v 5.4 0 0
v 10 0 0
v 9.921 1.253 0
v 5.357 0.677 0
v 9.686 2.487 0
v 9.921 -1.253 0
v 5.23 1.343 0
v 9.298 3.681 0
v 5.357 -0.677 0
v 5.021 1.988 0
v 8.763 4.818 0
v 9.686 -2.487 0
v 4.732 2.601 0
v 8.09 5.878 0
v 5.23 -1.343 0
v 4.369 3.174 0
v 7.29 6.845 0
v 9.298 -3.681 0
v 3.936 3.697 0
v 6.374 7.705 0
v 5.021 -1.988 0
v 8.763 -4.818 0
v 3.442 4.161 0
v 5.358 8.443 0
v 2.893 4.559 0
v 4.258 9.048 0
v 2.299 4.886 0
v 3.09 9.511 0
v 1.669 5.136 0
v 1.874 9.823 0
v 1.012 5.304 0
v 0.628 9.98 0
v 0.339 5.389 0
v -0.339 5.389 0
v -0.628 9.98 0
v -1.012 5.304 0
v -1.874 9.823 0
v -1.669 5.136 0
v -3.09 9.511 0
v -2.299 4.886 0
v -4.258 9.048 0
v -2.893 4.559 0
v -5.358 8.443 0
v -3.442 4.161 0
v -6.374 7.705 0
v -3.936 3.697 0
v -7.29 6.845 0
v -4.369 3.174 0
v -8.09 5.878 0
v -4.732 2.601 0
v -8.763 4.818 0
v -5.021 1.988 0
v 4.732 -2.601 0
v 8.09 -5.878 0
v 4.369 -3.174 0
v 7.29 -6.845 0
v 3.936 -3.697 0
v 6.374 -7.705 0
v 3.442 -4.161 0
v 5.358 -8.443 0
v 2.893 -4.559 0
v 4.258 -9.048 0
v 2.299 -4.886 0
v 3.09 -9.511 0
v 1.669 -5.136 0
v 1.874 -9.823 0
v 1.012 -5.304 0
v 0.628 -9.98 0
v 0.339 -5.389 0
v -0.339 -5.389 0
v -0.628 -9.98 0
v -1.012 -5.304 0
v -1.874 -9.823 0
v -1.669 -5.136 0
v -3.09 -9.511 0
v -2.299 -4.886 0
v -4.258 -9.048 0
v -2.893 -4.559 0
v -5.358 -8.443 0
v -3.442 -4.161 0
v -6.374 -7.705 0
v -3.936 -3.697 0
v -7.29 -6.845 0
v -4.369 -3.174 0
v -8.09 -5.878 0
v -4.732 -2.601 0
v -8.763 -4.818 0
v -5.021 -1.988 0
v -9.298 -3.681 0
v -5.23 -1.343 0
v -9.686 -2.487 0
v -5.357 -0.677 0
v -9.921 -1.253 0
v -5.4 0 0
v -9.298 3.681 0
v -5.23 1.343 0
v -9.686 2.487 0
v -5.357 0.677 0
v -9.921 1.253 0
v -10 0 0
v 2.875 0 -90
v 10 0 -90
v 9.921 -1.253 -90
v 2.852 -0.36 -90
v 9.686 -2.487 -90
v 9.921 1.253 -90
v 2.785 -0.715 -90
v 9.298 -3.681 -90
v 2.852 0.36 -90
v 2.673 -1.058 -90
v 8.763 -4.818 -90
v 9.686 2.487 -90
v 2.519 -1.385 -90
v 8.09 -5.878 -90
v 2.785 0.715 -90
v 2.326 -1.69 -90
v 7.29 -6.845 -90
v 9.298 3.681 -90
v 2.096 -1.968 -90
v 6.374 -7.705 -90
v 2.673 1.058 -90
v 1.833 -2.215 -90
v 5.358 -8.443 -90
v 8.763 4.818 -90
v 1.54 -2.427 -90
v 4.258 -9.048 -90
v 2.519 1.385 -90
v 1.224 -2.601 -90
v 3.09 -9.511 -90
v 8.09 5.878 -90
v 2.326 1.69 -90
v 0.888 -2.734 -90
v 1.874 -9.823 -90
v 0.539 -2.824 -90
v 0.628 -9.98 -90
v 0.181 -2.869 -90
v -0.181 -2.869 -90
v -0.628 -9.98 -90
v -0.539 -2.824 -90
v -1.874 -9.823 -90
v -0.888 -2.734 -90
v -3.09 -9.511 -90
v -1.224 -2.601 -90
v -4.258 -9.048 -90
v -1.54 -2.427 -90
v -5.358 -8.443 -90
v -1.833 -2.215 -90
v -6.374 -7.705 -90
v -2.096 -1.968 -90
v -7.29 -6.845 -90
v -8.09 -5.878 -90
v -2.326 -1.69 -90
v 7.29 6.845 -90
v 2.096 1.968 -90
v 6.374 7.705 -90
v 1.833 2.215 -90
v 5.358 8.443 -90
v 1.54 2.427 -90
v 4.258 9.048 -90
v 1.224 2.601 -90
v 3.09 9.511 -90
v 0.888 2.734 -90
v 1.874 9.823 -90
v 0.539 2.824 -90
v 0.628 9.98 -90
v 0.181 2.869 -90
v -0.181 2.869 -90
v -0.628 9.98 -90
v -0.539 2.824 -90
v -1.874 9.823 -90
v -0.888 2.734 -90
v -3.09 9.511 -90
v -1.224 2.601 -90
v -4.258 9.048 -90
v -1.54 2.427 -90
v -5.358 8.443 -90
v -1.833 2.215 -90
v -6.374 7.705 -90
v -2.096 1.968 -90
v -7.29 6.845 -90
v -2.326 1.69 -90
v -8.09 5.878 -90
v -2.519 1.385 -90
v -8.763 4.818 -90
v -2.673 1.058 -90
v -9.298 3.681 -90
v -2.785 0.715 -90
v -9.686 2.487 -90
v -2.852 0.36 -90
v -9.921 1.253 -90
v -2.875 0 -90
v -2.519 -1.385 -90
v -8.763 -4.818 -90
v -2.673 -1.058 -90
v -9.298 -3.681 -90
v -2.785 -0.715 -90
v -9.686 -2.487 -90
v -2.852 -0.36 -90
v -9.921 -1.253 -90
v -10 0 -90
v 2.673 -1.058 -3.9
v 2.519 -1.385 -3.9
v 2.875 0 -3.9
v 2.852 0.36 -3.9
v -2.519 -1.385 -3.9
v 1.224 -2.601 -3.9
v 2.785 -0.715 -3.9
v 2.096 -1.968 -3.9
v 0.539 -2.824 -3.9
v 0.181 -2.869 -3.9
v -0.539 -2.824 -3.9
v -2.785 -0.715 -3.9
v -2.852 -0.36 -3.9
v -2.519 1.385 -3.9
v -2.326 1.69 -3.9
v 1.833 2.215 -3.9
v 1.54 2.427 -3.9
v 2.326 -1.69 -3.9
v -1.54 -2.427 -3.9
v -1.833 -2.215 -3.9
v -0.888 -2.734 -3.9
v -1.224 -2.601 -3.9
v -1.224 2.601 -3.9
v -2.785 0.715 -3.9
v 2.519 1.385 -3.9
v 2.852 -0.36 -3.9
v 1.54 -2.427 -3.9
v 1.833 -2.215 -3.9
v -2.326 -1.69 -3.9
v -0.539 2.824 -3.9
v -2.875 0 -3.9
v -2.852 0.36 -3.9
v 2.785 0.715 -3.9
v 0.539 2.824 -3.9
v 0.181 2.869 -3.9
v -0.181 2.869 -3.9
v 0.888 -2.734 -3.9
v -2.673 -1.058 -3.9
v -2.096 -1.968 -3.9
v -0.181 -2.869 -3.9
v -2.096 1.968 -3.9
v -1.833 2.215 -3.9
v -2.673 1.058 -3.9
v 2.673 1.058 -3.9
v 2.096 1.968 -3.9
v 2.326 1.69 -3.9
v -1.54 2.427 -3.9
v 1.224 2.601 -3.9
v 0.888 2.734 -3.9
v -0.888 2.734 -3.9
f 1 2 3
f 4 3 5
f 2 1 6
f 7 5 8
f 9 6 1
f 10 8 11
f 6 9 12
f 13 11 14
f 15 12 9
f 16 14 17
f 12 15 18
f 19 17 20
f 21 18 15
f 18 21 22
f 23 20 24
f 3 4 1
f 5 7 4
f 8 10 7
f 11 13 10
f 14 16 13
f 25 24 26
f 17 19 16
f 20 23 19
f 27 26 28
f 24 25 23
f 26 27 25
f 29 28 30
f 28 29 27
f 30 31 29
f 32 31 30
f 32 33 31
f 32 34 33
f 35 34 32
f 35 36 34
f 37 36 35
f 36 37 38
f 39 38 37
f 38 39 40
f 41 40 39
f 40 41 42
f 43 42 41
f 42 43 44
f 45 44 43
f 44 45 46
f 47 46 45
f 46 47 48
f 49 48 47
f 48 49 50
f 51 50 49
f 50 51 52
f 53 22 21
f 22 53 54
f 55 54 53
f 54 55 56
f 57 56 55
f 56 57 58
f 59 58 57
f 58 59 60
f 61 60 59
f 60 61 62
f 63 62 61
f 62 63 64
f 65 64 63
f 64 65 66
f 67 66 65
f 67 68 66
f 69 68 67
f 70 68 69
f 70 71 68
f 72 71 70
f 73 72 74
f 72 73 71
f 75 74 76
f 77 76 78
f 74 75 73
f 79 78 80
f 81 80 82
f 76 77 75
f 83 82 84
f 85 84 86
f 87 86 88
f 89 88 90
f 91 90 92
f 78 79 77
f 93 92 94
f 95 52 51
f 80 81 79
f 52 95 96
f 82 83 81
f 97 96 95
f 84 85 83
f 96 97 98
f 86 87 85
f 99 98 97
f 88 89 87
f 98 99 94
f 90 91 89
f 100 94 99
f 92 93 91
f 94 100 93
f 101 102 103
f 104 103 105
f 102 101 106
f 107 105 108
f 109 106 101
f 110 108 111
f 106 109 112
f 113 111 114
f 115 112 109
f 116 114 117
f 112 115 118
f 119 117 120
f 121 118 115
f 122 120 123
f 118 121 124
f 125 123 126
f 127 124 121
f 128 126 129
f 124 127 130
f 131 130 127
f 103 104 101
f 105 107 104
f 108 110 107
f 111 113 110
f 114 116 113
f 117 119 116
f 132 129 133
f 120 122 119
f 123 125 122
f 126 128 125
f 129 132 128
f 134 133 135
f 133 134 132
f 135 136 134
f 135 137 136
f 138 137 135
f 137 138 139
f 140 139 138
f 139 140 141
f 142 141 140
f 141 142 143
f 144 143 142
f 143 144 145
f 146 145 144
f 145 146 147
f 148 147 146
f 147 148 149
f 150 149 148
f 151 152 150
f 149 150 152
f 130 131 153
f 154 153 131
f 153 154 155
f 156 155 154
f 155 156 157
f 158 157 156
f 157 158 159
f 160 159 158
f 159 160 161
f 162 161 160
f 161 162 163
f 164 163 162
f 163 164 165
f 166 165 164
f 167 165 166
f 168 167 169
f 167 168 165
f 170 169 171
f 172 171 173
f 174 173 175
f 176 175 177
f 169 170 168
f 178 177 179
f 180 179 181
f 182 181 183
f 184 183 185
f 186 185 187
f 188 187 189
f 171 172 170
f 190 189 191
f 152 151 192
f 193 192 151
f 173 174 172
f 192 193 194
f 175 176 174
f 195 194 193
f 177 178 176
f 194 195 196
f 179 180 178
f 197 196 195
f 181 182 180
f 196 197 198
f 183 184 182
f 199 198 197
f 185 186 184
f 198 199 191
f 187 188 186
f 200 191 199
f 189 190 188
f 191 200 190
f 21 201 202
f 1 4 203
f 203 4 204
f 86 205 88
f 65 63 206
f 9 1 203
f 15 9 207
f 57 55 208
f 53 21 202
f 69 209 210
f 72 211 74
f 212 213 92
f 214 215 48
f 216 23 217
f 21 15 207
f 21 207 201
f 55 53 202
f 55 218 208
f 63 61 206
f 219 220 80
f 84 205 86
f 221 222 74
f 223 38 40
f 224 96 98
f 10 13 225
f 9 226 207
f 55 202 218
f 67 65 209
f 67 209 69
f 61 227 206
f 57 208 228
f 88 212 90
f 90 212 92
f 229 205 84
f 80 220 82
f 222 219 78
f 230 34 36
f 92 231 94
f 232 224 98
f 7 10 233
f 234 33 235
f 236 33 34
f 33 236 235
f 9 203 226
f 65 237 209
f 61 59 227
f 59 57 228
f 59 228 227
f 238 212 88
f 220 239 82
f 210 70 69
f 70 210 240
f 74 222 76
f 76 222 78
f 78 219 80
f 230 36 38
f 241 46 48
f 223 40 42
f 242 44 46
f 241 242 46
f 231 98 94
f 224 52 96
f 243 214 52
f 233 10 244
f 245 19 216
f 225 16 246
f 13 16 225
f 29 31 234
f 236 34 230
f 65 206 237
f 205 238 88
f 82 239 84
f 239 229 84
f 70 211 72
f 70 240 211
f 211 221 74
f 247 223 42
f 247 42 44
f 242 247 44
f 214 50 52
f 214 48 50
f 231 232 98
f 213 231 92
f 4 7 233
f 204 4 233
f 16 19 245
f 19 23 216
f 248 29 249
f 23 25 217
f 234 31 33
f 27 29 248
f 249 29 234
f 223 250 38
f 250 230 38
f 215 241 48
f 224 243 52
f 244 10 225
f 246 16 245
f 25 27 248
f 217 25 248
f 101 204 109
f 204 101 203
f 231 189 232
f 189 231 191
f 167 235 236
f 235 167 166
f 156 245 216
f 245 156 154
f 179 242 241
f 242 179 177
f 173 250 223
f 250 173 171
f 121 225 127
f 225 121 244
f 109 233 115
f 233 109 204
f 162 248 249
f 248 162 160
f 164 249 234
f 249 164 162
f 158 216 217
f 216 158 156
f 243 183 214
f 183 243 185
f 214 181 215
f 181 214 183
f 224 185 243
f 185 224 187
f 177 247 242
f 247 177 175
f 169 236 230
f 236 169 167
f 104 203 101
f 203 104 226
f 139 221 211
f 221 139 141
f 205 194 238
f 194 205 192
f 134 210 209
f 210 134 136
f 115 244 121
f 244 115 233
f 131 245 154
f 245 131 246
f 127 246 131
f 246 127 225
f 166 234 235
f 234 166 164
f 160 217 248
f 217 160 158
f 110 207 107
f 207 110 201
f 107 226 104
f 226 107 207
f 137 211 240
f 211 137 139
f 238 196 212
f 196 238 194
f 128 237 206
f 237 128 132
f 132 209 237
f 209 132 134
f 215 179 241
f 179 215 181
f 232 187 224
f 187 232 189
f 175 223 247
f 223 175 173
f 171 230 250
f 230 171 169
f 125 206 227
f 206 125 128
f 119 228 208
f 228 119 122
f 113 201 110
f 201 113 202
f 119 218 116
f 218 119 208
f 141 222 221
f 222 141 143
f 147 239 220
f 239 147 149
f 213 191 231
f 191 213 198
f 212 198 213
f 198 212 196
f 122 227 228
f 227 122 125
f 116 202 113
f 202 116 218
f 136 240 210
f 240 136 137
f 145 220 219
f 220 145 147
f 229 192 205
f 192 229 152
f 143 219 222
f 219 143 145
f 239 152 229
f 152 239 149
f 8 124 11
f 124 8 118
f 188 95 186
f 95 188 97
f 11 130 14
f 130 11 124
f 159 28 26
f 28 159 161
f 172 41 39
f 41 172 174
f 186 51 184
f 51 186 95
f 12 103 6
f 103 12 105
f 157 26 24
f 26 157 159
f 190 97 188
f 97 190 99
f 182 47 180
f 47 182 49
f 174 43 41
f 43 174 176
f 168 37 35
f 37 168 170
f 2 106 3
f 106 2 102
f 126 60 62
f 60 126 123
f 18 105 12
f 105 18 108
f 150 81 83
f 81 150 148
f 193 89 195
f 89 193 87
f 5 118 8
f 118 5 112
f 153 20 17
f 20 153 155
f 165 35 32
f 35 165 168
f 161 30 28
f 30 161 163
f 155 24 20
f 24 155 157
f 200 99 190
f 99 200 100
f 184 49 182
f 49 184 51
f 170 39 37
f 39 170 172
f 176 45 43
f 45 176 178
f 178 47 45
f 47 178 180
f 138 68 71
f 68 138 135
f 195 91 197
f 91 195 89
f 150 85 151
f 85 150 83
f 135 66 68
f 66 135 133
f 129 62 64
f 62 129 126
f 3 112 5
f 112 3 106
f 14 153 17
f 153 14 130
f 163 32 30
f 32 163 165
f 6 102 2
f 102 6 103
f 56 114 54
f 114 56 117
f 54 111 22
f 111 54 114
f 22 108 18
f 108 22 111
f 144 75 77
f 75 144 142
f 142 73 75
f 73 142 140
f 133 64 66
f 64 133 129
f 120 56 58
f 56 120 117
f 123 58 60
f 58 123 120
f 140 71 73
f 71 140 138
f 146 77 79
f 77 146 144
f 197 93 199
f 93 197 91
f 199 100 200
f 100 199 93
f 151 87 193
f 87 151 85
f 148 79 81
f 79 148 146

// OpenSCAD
$fn = 50;


difference() {
	union() {
		translate(v = [0, 0, -90.0000000000]) {
			cylinder(h = 90, r = 10.0000000000);
		}
		cylinder(h = 0, r = 19.0000000000);
	}
	union() {
		translate(v = [0, 0, 0]) {
			rotate(a = [0, 0, 0]) {
				difference() {
					union() {
						#translate(v = [0, 0, -90.0000000000]) {
							cylinder(h = 90, r = 2.6000000000);
						}
						#translate(v = [0, 0, -3.9000000000]) {
							cylinder(h = 3.9000000000, r1 = 2.8750000000, r2 = 5.4000000000);
						}
						#translate(v = [0, 0, -90.0000000000]) {
							cylinder(h = 90, r = 2.8750000000);
						}
						#translate(v = [0, 0, -90.0000000000]) {
							cylinder(h = 90, r = 2.6000000000);
						}
					}
					union();
				}
			}
		}
	}
}
